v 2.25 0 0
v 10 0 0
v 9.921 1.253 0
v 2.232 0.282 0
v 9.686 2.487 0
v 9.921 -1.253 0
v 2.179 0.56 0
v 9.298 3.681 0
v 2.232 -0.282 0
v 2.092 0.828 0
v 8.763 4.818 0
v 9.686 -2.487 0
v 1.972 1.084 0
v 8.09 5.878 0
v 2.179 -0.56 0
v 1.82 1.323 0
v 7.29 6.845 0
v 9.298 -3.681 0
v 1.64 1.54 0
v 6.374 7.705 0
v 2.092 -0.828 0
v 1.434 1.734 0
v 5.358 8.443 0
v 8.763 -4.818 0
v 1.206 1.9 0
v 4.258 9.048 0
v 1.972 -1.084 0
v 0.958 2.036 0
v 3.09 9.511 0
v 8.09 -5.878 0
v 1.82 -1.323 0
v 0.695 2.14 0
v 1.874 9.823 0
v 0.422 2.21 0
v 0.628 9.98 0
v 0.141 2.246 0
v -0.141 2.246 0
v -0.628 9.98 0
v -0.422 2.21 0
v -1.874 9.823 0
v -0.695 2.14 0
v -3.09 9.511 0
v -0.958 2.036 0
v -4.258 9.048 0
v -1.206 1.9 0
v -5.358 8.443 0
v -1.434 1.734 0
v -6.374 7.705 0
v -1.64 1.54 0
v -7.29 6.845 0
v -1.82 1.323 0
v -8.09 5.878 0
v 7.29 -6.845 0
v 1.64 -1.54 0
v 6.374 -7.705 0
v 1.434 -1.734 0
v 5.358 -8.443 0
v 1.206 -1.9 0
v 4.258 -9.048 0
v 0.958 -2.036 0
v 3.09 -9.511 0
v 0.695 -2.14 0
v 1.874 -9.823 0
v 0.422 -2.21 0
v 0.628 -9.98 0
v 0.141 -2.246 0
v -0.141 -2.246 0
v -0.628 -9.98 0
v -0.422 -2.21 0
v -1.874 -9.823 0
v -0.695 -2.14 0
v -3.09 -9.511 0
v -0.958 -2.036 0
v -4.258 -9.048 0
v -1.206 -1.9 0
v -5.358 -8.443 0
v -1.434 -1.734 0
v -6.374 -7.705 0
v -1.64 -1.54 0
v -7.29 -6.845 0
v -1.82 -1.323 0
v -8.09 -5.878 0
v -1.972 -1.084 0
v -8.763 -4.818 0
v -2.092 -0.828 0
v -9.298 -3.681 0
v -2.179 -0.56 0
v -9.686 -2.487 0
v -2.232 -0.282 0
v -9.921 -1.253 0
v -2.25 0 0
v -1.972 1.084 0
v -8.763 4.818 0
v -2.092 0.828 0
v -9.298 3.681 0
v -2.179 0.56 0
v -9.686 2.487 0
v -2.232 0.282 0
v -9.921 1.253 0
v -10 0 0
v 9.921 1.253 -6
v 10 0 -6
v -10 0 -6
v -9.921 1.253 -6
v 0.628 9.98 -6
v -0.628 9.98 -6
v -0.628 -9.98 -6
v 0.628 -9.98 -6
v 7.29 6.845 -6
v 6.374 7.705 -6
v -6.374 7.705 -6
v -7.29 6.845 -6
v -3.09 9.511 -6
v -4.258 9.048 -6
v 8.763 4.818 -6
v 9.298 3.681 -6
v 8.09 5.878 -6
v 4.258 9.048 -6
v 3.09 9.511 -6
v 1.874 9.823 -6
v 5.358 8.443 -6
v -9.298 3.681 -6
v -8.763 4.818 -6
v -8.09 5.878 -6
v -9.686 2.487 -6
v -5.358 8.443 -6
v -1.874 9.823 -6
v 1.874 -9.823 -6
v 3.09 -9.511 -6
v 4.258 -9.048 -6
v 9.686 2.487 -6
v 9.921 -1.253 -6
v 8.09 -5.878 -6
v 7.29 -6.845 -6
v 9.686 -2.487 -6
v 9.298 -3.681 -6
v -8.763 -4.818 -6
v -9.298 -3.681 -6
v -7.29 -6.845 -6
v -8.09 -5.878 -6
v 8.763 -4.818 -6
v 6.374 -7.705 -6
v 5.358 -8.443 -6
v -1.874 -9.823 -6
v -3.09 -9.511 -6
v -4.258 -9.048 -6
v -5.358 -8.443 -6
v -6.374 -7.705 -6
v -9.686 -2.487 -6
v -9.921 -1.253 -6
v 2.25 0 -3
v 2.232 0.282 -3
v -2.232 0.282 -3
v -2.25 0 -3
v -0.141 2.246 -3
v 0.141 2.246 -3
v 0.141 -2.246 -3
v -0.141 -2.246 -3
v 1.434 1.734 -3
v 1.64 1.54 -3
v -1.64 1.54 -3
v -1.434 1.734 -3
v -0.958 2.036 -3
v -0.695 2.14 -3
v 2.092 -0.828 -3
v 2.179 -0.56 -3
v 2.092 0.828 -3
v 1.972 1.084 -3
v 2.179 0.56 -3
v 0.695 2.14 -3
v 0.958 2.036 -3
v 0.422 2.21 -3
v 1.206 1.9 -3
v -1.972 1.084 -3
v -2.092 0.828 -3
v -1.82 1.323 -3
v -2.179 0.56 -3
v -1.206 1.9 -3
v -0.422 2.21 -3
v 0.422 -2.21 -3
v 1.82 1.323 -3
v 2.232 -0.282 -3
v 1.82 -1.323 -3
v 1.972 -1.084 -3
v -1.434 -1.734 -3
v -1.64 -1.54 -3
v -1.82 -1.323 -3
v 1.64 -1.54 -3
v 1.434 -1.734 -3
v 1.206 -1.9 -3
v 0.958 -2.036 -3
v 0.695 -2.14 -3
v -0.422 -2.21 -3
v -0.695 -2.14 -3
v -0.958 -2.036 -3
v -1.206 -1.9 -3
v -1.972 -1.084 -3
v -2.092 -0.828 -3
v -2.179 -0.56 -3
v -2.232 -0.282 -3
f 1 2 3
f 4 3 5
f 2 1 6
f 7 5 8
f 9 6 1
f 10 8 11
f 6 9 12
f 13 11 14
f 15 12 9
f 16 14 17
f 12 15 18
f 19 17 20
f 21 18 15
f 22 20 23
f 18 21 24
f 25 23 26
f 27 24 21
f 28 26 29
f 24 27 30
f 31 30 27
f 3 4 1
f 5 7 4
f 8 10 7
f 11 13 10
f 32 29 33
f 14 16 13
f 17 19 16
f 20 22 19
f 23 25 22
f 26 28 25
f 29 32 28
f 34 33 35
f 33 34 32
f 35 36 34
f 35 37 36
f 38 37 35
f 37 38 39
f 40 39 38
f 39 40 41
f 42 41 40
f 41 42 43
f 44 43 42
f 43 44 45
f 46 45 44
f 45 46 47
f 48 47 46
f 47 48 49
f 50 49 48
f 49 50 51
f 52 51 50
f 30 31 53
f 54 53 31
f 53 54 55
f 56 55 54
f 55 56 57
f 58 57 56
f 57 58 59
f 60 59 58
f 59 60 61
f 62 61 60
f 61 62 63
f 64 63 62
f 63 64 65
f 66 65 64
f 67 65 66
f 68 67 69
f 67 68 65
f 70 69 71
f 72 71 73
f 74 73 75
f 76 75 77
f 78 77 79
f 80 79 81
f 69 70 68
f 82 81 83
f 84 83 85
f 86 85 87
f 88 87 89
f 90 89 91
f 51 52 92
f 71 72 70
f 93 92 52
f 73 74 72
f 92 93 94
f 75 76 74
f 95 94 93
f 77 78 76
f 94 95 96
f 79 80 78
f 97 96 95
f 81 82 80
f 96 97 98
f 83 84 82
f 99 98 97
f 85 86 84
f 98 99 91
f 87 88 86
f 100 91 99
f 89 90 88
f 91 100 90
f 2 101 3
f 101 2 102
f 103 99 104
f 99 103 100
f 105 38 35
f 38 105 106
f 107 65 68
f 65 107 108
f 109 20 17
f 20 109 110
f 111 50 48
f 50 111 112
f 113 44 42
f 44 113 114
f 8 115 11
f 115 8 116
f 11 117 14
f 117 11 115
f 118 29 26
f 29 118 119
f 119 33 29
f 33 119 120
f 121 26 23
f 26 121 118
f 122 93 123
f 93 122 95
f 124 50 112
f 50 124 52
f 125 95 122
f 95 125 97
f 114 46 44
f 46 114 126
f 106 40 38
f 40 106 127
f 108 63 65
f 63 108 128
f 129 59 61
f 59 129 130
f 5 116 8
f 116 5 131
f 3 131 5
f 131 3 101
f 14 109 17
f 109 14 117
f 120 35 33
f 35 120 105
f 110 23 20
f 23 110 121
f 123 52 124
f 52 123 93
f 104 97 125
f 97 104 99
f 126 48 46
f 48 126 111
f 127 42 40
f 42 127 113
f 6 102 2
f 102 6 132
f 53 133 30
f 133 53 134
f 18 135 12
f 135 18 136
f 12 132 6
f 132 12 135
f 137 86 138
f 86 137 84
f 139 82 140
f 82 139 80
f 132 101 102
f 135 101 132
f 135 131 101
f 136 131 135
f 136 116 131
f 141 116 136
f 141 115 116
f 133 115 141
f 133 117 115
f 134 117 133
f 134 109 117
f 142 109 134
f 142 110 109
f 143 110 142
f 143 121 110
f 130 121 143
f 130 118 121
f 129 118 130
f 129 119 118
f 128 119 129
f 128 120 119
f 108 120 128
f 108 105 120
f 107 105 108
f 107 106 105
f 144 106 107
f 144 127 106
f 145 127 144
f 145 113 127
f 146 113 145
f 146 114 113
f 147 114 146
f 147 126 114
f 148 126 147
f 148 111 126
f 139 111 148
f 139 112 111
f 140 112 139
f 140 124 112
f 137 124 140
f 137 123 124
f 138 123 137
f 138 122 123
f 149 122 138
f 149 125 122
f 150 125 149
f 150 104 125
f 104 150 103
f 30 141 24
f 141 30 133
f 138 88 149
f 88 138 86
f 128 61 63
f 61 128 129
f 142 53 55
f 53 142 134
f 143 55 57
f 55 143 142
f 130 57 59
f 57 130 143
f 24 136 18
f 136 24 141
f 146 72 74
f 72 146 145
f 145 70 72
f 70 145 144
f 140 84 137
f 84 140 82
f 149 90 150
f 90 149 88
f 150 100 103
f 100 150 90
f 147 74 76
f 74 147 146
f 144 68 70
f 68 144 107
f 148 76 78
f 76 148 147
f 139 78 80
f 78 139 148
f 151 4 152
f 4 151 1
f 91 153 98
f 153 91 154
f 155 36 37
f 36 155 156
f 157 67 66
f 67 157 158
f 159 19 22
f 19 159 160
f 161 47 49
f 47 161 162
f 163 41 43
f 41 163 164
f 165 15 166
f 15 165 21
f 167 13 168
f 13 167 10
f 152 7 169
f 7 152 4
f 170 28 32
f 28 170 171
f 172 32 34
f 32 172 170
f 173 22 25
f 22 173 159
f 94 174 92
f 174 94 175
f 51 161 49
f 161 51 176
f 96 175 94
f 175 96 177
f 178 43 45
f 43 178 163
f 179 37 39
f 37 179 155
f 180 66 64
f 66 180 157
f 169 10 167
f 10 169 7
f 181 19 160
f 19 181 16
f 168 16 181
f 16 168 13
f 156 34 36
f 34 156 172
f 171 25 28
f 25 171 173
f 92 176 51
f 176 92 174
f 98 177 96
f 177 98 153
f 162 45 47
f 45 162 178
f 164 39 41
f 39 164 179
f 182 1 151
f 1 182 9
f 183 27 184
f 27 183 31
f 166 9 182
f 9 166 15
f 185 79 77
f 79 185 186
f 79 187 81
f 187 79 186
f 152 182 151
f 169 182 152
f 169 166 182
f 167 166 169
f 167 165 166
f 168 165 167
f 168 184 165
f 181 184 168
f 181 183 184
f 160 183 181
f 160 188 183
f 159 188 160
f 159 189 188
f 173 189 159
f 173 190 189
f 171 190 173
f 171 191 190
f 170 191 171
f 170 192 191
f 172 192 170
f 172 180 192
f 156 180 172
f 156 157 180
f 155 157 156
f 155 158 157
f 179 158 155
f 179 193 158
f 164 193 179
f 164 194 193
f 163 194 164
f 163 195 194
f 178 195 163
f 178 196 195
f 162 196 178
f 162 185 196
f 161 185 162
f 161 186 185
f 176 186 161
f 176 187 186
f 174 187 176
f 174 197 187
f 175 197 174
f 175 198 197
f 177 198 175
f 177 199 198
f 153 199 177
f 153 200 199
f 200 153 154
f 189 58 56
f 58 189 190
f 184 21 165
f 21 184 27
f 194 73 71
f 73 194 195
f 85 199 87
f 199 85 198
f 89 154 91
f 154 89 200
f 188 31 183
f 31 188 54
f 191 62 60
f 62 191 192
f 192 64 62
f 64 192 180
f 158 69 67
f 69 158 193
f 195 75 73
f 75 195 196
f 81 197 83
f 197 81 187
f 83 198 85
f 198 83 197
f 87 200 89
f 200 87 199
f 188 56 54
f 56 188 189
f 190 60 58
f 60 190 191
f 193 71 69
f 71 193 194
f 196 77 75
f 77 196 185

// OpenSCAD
$fn = 50;


difference() {
	union() {
		translate(v = [0, 0, -3.0000000000]) {
			cylinder(h = 3, r = 7.0000000000);
		}
		translate(v = [0, 0, -6.0000000000]) {
			cylinder(h = 6, r = 10.0000000000);
		}
	}
	union() {
		#translate(v = [0, 0, -3]) {
			cylinder(h = 3, r = 2.2500000000);
		}
	}
}
